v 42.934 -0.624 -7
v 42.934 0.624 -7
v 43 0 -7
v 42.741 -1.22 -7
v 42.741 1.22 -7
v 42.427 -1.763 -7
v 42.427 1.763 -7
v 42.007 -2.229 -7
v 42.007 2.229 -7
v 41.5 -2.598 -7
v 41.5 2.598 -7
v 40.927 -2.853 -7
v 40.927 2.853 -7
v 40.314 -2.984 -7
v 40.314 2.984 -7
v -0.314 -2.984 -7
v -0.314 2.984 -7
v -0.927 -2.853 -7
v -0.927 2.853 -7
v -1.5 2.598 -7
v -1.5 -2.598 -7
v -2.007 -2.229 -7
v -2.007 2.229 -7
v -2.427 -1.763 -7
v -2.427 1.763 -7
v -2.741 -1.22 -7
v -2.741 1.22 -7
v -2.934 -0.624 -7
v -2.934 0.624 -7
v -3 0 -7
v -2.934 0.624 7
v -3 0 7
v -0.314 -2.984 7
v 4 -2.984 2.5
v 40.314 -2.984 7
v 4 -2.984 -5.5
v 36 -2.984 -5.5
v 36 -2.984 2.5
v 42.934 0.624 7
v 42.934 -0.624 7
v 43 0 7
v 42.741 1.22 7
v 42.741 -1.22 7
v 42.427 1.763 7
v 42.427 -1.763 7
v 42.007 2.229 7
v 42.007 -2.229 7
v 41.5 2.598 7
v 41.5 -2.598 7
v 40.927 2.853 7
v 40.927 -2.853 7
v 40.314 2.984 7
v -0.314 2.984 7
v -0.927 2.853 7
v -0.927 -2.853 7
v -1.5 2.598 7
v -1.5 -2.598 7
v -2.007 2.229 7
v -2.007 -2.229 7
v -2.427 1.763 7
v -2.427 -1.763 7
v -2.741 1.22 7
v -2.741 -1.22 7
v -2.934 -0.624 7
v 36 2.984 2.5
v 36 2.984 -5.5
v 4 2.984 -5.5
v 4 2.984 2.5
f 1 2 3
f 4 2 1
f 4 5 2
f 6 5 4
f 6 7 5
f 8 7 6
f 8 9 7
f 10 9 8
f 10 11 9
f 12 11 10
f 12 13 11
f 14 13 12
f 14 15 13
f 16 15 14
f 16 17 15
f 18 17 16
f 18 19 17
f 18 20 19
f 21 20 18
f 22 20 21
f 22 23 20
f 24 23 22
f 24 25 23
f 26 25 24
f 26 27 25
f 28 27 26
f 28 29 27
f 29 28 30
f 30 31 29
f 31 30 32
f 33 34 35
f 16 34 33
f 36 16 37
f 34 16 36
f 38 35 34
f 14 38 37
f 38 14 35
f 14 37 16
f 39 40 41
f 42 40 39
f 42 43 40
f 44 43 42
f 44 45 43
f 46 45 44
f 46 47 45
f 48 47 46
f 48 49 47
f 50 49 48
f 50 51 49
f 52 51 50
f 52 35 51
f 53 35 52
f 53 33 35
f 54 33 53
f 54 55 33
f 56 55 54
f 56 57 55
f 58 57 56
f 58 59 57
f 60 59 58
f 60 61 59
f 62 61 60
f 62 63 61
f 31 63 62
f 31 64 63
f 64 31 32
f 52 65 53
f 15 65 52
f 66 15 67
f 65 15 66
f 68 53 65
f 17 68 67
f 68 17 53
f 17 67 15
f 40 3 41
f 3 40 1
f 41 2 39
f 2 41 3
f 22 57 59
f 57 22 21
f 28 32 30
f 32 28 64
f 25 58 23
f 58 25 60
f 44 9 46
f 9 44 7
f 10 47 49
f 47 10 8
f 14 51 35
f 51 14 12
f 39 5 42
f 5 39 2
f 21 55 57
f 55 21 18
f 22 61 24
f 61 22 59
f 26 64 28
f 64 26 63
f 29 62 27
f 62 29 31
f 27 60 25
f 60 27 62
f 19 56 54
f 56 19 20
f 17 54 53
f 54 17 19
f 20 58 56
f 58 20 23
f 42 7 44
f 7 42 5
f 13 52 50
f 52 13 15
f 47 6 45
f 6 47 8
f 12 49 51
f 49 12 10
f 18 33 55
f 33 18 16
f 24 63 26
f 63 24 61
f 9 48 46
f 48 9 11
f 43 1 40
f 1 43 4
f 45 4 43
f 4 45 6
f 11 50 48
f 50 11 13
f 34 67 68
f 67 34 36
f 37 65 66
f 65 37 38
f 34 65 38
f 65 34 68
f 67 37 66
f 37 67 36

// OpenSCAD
$fn=30;
height=10;
radius=3;
difference(){
    hull(){
      cylinder(r=radius,h=height+4, center=true);
      translate([40,0,0])cylinder(r=radius,h=height+4, center=true);
  }
  rotate([90,0,0]) translate([20,-1.5,0])cube([height*3+2,height-2,999],center=true);
}
